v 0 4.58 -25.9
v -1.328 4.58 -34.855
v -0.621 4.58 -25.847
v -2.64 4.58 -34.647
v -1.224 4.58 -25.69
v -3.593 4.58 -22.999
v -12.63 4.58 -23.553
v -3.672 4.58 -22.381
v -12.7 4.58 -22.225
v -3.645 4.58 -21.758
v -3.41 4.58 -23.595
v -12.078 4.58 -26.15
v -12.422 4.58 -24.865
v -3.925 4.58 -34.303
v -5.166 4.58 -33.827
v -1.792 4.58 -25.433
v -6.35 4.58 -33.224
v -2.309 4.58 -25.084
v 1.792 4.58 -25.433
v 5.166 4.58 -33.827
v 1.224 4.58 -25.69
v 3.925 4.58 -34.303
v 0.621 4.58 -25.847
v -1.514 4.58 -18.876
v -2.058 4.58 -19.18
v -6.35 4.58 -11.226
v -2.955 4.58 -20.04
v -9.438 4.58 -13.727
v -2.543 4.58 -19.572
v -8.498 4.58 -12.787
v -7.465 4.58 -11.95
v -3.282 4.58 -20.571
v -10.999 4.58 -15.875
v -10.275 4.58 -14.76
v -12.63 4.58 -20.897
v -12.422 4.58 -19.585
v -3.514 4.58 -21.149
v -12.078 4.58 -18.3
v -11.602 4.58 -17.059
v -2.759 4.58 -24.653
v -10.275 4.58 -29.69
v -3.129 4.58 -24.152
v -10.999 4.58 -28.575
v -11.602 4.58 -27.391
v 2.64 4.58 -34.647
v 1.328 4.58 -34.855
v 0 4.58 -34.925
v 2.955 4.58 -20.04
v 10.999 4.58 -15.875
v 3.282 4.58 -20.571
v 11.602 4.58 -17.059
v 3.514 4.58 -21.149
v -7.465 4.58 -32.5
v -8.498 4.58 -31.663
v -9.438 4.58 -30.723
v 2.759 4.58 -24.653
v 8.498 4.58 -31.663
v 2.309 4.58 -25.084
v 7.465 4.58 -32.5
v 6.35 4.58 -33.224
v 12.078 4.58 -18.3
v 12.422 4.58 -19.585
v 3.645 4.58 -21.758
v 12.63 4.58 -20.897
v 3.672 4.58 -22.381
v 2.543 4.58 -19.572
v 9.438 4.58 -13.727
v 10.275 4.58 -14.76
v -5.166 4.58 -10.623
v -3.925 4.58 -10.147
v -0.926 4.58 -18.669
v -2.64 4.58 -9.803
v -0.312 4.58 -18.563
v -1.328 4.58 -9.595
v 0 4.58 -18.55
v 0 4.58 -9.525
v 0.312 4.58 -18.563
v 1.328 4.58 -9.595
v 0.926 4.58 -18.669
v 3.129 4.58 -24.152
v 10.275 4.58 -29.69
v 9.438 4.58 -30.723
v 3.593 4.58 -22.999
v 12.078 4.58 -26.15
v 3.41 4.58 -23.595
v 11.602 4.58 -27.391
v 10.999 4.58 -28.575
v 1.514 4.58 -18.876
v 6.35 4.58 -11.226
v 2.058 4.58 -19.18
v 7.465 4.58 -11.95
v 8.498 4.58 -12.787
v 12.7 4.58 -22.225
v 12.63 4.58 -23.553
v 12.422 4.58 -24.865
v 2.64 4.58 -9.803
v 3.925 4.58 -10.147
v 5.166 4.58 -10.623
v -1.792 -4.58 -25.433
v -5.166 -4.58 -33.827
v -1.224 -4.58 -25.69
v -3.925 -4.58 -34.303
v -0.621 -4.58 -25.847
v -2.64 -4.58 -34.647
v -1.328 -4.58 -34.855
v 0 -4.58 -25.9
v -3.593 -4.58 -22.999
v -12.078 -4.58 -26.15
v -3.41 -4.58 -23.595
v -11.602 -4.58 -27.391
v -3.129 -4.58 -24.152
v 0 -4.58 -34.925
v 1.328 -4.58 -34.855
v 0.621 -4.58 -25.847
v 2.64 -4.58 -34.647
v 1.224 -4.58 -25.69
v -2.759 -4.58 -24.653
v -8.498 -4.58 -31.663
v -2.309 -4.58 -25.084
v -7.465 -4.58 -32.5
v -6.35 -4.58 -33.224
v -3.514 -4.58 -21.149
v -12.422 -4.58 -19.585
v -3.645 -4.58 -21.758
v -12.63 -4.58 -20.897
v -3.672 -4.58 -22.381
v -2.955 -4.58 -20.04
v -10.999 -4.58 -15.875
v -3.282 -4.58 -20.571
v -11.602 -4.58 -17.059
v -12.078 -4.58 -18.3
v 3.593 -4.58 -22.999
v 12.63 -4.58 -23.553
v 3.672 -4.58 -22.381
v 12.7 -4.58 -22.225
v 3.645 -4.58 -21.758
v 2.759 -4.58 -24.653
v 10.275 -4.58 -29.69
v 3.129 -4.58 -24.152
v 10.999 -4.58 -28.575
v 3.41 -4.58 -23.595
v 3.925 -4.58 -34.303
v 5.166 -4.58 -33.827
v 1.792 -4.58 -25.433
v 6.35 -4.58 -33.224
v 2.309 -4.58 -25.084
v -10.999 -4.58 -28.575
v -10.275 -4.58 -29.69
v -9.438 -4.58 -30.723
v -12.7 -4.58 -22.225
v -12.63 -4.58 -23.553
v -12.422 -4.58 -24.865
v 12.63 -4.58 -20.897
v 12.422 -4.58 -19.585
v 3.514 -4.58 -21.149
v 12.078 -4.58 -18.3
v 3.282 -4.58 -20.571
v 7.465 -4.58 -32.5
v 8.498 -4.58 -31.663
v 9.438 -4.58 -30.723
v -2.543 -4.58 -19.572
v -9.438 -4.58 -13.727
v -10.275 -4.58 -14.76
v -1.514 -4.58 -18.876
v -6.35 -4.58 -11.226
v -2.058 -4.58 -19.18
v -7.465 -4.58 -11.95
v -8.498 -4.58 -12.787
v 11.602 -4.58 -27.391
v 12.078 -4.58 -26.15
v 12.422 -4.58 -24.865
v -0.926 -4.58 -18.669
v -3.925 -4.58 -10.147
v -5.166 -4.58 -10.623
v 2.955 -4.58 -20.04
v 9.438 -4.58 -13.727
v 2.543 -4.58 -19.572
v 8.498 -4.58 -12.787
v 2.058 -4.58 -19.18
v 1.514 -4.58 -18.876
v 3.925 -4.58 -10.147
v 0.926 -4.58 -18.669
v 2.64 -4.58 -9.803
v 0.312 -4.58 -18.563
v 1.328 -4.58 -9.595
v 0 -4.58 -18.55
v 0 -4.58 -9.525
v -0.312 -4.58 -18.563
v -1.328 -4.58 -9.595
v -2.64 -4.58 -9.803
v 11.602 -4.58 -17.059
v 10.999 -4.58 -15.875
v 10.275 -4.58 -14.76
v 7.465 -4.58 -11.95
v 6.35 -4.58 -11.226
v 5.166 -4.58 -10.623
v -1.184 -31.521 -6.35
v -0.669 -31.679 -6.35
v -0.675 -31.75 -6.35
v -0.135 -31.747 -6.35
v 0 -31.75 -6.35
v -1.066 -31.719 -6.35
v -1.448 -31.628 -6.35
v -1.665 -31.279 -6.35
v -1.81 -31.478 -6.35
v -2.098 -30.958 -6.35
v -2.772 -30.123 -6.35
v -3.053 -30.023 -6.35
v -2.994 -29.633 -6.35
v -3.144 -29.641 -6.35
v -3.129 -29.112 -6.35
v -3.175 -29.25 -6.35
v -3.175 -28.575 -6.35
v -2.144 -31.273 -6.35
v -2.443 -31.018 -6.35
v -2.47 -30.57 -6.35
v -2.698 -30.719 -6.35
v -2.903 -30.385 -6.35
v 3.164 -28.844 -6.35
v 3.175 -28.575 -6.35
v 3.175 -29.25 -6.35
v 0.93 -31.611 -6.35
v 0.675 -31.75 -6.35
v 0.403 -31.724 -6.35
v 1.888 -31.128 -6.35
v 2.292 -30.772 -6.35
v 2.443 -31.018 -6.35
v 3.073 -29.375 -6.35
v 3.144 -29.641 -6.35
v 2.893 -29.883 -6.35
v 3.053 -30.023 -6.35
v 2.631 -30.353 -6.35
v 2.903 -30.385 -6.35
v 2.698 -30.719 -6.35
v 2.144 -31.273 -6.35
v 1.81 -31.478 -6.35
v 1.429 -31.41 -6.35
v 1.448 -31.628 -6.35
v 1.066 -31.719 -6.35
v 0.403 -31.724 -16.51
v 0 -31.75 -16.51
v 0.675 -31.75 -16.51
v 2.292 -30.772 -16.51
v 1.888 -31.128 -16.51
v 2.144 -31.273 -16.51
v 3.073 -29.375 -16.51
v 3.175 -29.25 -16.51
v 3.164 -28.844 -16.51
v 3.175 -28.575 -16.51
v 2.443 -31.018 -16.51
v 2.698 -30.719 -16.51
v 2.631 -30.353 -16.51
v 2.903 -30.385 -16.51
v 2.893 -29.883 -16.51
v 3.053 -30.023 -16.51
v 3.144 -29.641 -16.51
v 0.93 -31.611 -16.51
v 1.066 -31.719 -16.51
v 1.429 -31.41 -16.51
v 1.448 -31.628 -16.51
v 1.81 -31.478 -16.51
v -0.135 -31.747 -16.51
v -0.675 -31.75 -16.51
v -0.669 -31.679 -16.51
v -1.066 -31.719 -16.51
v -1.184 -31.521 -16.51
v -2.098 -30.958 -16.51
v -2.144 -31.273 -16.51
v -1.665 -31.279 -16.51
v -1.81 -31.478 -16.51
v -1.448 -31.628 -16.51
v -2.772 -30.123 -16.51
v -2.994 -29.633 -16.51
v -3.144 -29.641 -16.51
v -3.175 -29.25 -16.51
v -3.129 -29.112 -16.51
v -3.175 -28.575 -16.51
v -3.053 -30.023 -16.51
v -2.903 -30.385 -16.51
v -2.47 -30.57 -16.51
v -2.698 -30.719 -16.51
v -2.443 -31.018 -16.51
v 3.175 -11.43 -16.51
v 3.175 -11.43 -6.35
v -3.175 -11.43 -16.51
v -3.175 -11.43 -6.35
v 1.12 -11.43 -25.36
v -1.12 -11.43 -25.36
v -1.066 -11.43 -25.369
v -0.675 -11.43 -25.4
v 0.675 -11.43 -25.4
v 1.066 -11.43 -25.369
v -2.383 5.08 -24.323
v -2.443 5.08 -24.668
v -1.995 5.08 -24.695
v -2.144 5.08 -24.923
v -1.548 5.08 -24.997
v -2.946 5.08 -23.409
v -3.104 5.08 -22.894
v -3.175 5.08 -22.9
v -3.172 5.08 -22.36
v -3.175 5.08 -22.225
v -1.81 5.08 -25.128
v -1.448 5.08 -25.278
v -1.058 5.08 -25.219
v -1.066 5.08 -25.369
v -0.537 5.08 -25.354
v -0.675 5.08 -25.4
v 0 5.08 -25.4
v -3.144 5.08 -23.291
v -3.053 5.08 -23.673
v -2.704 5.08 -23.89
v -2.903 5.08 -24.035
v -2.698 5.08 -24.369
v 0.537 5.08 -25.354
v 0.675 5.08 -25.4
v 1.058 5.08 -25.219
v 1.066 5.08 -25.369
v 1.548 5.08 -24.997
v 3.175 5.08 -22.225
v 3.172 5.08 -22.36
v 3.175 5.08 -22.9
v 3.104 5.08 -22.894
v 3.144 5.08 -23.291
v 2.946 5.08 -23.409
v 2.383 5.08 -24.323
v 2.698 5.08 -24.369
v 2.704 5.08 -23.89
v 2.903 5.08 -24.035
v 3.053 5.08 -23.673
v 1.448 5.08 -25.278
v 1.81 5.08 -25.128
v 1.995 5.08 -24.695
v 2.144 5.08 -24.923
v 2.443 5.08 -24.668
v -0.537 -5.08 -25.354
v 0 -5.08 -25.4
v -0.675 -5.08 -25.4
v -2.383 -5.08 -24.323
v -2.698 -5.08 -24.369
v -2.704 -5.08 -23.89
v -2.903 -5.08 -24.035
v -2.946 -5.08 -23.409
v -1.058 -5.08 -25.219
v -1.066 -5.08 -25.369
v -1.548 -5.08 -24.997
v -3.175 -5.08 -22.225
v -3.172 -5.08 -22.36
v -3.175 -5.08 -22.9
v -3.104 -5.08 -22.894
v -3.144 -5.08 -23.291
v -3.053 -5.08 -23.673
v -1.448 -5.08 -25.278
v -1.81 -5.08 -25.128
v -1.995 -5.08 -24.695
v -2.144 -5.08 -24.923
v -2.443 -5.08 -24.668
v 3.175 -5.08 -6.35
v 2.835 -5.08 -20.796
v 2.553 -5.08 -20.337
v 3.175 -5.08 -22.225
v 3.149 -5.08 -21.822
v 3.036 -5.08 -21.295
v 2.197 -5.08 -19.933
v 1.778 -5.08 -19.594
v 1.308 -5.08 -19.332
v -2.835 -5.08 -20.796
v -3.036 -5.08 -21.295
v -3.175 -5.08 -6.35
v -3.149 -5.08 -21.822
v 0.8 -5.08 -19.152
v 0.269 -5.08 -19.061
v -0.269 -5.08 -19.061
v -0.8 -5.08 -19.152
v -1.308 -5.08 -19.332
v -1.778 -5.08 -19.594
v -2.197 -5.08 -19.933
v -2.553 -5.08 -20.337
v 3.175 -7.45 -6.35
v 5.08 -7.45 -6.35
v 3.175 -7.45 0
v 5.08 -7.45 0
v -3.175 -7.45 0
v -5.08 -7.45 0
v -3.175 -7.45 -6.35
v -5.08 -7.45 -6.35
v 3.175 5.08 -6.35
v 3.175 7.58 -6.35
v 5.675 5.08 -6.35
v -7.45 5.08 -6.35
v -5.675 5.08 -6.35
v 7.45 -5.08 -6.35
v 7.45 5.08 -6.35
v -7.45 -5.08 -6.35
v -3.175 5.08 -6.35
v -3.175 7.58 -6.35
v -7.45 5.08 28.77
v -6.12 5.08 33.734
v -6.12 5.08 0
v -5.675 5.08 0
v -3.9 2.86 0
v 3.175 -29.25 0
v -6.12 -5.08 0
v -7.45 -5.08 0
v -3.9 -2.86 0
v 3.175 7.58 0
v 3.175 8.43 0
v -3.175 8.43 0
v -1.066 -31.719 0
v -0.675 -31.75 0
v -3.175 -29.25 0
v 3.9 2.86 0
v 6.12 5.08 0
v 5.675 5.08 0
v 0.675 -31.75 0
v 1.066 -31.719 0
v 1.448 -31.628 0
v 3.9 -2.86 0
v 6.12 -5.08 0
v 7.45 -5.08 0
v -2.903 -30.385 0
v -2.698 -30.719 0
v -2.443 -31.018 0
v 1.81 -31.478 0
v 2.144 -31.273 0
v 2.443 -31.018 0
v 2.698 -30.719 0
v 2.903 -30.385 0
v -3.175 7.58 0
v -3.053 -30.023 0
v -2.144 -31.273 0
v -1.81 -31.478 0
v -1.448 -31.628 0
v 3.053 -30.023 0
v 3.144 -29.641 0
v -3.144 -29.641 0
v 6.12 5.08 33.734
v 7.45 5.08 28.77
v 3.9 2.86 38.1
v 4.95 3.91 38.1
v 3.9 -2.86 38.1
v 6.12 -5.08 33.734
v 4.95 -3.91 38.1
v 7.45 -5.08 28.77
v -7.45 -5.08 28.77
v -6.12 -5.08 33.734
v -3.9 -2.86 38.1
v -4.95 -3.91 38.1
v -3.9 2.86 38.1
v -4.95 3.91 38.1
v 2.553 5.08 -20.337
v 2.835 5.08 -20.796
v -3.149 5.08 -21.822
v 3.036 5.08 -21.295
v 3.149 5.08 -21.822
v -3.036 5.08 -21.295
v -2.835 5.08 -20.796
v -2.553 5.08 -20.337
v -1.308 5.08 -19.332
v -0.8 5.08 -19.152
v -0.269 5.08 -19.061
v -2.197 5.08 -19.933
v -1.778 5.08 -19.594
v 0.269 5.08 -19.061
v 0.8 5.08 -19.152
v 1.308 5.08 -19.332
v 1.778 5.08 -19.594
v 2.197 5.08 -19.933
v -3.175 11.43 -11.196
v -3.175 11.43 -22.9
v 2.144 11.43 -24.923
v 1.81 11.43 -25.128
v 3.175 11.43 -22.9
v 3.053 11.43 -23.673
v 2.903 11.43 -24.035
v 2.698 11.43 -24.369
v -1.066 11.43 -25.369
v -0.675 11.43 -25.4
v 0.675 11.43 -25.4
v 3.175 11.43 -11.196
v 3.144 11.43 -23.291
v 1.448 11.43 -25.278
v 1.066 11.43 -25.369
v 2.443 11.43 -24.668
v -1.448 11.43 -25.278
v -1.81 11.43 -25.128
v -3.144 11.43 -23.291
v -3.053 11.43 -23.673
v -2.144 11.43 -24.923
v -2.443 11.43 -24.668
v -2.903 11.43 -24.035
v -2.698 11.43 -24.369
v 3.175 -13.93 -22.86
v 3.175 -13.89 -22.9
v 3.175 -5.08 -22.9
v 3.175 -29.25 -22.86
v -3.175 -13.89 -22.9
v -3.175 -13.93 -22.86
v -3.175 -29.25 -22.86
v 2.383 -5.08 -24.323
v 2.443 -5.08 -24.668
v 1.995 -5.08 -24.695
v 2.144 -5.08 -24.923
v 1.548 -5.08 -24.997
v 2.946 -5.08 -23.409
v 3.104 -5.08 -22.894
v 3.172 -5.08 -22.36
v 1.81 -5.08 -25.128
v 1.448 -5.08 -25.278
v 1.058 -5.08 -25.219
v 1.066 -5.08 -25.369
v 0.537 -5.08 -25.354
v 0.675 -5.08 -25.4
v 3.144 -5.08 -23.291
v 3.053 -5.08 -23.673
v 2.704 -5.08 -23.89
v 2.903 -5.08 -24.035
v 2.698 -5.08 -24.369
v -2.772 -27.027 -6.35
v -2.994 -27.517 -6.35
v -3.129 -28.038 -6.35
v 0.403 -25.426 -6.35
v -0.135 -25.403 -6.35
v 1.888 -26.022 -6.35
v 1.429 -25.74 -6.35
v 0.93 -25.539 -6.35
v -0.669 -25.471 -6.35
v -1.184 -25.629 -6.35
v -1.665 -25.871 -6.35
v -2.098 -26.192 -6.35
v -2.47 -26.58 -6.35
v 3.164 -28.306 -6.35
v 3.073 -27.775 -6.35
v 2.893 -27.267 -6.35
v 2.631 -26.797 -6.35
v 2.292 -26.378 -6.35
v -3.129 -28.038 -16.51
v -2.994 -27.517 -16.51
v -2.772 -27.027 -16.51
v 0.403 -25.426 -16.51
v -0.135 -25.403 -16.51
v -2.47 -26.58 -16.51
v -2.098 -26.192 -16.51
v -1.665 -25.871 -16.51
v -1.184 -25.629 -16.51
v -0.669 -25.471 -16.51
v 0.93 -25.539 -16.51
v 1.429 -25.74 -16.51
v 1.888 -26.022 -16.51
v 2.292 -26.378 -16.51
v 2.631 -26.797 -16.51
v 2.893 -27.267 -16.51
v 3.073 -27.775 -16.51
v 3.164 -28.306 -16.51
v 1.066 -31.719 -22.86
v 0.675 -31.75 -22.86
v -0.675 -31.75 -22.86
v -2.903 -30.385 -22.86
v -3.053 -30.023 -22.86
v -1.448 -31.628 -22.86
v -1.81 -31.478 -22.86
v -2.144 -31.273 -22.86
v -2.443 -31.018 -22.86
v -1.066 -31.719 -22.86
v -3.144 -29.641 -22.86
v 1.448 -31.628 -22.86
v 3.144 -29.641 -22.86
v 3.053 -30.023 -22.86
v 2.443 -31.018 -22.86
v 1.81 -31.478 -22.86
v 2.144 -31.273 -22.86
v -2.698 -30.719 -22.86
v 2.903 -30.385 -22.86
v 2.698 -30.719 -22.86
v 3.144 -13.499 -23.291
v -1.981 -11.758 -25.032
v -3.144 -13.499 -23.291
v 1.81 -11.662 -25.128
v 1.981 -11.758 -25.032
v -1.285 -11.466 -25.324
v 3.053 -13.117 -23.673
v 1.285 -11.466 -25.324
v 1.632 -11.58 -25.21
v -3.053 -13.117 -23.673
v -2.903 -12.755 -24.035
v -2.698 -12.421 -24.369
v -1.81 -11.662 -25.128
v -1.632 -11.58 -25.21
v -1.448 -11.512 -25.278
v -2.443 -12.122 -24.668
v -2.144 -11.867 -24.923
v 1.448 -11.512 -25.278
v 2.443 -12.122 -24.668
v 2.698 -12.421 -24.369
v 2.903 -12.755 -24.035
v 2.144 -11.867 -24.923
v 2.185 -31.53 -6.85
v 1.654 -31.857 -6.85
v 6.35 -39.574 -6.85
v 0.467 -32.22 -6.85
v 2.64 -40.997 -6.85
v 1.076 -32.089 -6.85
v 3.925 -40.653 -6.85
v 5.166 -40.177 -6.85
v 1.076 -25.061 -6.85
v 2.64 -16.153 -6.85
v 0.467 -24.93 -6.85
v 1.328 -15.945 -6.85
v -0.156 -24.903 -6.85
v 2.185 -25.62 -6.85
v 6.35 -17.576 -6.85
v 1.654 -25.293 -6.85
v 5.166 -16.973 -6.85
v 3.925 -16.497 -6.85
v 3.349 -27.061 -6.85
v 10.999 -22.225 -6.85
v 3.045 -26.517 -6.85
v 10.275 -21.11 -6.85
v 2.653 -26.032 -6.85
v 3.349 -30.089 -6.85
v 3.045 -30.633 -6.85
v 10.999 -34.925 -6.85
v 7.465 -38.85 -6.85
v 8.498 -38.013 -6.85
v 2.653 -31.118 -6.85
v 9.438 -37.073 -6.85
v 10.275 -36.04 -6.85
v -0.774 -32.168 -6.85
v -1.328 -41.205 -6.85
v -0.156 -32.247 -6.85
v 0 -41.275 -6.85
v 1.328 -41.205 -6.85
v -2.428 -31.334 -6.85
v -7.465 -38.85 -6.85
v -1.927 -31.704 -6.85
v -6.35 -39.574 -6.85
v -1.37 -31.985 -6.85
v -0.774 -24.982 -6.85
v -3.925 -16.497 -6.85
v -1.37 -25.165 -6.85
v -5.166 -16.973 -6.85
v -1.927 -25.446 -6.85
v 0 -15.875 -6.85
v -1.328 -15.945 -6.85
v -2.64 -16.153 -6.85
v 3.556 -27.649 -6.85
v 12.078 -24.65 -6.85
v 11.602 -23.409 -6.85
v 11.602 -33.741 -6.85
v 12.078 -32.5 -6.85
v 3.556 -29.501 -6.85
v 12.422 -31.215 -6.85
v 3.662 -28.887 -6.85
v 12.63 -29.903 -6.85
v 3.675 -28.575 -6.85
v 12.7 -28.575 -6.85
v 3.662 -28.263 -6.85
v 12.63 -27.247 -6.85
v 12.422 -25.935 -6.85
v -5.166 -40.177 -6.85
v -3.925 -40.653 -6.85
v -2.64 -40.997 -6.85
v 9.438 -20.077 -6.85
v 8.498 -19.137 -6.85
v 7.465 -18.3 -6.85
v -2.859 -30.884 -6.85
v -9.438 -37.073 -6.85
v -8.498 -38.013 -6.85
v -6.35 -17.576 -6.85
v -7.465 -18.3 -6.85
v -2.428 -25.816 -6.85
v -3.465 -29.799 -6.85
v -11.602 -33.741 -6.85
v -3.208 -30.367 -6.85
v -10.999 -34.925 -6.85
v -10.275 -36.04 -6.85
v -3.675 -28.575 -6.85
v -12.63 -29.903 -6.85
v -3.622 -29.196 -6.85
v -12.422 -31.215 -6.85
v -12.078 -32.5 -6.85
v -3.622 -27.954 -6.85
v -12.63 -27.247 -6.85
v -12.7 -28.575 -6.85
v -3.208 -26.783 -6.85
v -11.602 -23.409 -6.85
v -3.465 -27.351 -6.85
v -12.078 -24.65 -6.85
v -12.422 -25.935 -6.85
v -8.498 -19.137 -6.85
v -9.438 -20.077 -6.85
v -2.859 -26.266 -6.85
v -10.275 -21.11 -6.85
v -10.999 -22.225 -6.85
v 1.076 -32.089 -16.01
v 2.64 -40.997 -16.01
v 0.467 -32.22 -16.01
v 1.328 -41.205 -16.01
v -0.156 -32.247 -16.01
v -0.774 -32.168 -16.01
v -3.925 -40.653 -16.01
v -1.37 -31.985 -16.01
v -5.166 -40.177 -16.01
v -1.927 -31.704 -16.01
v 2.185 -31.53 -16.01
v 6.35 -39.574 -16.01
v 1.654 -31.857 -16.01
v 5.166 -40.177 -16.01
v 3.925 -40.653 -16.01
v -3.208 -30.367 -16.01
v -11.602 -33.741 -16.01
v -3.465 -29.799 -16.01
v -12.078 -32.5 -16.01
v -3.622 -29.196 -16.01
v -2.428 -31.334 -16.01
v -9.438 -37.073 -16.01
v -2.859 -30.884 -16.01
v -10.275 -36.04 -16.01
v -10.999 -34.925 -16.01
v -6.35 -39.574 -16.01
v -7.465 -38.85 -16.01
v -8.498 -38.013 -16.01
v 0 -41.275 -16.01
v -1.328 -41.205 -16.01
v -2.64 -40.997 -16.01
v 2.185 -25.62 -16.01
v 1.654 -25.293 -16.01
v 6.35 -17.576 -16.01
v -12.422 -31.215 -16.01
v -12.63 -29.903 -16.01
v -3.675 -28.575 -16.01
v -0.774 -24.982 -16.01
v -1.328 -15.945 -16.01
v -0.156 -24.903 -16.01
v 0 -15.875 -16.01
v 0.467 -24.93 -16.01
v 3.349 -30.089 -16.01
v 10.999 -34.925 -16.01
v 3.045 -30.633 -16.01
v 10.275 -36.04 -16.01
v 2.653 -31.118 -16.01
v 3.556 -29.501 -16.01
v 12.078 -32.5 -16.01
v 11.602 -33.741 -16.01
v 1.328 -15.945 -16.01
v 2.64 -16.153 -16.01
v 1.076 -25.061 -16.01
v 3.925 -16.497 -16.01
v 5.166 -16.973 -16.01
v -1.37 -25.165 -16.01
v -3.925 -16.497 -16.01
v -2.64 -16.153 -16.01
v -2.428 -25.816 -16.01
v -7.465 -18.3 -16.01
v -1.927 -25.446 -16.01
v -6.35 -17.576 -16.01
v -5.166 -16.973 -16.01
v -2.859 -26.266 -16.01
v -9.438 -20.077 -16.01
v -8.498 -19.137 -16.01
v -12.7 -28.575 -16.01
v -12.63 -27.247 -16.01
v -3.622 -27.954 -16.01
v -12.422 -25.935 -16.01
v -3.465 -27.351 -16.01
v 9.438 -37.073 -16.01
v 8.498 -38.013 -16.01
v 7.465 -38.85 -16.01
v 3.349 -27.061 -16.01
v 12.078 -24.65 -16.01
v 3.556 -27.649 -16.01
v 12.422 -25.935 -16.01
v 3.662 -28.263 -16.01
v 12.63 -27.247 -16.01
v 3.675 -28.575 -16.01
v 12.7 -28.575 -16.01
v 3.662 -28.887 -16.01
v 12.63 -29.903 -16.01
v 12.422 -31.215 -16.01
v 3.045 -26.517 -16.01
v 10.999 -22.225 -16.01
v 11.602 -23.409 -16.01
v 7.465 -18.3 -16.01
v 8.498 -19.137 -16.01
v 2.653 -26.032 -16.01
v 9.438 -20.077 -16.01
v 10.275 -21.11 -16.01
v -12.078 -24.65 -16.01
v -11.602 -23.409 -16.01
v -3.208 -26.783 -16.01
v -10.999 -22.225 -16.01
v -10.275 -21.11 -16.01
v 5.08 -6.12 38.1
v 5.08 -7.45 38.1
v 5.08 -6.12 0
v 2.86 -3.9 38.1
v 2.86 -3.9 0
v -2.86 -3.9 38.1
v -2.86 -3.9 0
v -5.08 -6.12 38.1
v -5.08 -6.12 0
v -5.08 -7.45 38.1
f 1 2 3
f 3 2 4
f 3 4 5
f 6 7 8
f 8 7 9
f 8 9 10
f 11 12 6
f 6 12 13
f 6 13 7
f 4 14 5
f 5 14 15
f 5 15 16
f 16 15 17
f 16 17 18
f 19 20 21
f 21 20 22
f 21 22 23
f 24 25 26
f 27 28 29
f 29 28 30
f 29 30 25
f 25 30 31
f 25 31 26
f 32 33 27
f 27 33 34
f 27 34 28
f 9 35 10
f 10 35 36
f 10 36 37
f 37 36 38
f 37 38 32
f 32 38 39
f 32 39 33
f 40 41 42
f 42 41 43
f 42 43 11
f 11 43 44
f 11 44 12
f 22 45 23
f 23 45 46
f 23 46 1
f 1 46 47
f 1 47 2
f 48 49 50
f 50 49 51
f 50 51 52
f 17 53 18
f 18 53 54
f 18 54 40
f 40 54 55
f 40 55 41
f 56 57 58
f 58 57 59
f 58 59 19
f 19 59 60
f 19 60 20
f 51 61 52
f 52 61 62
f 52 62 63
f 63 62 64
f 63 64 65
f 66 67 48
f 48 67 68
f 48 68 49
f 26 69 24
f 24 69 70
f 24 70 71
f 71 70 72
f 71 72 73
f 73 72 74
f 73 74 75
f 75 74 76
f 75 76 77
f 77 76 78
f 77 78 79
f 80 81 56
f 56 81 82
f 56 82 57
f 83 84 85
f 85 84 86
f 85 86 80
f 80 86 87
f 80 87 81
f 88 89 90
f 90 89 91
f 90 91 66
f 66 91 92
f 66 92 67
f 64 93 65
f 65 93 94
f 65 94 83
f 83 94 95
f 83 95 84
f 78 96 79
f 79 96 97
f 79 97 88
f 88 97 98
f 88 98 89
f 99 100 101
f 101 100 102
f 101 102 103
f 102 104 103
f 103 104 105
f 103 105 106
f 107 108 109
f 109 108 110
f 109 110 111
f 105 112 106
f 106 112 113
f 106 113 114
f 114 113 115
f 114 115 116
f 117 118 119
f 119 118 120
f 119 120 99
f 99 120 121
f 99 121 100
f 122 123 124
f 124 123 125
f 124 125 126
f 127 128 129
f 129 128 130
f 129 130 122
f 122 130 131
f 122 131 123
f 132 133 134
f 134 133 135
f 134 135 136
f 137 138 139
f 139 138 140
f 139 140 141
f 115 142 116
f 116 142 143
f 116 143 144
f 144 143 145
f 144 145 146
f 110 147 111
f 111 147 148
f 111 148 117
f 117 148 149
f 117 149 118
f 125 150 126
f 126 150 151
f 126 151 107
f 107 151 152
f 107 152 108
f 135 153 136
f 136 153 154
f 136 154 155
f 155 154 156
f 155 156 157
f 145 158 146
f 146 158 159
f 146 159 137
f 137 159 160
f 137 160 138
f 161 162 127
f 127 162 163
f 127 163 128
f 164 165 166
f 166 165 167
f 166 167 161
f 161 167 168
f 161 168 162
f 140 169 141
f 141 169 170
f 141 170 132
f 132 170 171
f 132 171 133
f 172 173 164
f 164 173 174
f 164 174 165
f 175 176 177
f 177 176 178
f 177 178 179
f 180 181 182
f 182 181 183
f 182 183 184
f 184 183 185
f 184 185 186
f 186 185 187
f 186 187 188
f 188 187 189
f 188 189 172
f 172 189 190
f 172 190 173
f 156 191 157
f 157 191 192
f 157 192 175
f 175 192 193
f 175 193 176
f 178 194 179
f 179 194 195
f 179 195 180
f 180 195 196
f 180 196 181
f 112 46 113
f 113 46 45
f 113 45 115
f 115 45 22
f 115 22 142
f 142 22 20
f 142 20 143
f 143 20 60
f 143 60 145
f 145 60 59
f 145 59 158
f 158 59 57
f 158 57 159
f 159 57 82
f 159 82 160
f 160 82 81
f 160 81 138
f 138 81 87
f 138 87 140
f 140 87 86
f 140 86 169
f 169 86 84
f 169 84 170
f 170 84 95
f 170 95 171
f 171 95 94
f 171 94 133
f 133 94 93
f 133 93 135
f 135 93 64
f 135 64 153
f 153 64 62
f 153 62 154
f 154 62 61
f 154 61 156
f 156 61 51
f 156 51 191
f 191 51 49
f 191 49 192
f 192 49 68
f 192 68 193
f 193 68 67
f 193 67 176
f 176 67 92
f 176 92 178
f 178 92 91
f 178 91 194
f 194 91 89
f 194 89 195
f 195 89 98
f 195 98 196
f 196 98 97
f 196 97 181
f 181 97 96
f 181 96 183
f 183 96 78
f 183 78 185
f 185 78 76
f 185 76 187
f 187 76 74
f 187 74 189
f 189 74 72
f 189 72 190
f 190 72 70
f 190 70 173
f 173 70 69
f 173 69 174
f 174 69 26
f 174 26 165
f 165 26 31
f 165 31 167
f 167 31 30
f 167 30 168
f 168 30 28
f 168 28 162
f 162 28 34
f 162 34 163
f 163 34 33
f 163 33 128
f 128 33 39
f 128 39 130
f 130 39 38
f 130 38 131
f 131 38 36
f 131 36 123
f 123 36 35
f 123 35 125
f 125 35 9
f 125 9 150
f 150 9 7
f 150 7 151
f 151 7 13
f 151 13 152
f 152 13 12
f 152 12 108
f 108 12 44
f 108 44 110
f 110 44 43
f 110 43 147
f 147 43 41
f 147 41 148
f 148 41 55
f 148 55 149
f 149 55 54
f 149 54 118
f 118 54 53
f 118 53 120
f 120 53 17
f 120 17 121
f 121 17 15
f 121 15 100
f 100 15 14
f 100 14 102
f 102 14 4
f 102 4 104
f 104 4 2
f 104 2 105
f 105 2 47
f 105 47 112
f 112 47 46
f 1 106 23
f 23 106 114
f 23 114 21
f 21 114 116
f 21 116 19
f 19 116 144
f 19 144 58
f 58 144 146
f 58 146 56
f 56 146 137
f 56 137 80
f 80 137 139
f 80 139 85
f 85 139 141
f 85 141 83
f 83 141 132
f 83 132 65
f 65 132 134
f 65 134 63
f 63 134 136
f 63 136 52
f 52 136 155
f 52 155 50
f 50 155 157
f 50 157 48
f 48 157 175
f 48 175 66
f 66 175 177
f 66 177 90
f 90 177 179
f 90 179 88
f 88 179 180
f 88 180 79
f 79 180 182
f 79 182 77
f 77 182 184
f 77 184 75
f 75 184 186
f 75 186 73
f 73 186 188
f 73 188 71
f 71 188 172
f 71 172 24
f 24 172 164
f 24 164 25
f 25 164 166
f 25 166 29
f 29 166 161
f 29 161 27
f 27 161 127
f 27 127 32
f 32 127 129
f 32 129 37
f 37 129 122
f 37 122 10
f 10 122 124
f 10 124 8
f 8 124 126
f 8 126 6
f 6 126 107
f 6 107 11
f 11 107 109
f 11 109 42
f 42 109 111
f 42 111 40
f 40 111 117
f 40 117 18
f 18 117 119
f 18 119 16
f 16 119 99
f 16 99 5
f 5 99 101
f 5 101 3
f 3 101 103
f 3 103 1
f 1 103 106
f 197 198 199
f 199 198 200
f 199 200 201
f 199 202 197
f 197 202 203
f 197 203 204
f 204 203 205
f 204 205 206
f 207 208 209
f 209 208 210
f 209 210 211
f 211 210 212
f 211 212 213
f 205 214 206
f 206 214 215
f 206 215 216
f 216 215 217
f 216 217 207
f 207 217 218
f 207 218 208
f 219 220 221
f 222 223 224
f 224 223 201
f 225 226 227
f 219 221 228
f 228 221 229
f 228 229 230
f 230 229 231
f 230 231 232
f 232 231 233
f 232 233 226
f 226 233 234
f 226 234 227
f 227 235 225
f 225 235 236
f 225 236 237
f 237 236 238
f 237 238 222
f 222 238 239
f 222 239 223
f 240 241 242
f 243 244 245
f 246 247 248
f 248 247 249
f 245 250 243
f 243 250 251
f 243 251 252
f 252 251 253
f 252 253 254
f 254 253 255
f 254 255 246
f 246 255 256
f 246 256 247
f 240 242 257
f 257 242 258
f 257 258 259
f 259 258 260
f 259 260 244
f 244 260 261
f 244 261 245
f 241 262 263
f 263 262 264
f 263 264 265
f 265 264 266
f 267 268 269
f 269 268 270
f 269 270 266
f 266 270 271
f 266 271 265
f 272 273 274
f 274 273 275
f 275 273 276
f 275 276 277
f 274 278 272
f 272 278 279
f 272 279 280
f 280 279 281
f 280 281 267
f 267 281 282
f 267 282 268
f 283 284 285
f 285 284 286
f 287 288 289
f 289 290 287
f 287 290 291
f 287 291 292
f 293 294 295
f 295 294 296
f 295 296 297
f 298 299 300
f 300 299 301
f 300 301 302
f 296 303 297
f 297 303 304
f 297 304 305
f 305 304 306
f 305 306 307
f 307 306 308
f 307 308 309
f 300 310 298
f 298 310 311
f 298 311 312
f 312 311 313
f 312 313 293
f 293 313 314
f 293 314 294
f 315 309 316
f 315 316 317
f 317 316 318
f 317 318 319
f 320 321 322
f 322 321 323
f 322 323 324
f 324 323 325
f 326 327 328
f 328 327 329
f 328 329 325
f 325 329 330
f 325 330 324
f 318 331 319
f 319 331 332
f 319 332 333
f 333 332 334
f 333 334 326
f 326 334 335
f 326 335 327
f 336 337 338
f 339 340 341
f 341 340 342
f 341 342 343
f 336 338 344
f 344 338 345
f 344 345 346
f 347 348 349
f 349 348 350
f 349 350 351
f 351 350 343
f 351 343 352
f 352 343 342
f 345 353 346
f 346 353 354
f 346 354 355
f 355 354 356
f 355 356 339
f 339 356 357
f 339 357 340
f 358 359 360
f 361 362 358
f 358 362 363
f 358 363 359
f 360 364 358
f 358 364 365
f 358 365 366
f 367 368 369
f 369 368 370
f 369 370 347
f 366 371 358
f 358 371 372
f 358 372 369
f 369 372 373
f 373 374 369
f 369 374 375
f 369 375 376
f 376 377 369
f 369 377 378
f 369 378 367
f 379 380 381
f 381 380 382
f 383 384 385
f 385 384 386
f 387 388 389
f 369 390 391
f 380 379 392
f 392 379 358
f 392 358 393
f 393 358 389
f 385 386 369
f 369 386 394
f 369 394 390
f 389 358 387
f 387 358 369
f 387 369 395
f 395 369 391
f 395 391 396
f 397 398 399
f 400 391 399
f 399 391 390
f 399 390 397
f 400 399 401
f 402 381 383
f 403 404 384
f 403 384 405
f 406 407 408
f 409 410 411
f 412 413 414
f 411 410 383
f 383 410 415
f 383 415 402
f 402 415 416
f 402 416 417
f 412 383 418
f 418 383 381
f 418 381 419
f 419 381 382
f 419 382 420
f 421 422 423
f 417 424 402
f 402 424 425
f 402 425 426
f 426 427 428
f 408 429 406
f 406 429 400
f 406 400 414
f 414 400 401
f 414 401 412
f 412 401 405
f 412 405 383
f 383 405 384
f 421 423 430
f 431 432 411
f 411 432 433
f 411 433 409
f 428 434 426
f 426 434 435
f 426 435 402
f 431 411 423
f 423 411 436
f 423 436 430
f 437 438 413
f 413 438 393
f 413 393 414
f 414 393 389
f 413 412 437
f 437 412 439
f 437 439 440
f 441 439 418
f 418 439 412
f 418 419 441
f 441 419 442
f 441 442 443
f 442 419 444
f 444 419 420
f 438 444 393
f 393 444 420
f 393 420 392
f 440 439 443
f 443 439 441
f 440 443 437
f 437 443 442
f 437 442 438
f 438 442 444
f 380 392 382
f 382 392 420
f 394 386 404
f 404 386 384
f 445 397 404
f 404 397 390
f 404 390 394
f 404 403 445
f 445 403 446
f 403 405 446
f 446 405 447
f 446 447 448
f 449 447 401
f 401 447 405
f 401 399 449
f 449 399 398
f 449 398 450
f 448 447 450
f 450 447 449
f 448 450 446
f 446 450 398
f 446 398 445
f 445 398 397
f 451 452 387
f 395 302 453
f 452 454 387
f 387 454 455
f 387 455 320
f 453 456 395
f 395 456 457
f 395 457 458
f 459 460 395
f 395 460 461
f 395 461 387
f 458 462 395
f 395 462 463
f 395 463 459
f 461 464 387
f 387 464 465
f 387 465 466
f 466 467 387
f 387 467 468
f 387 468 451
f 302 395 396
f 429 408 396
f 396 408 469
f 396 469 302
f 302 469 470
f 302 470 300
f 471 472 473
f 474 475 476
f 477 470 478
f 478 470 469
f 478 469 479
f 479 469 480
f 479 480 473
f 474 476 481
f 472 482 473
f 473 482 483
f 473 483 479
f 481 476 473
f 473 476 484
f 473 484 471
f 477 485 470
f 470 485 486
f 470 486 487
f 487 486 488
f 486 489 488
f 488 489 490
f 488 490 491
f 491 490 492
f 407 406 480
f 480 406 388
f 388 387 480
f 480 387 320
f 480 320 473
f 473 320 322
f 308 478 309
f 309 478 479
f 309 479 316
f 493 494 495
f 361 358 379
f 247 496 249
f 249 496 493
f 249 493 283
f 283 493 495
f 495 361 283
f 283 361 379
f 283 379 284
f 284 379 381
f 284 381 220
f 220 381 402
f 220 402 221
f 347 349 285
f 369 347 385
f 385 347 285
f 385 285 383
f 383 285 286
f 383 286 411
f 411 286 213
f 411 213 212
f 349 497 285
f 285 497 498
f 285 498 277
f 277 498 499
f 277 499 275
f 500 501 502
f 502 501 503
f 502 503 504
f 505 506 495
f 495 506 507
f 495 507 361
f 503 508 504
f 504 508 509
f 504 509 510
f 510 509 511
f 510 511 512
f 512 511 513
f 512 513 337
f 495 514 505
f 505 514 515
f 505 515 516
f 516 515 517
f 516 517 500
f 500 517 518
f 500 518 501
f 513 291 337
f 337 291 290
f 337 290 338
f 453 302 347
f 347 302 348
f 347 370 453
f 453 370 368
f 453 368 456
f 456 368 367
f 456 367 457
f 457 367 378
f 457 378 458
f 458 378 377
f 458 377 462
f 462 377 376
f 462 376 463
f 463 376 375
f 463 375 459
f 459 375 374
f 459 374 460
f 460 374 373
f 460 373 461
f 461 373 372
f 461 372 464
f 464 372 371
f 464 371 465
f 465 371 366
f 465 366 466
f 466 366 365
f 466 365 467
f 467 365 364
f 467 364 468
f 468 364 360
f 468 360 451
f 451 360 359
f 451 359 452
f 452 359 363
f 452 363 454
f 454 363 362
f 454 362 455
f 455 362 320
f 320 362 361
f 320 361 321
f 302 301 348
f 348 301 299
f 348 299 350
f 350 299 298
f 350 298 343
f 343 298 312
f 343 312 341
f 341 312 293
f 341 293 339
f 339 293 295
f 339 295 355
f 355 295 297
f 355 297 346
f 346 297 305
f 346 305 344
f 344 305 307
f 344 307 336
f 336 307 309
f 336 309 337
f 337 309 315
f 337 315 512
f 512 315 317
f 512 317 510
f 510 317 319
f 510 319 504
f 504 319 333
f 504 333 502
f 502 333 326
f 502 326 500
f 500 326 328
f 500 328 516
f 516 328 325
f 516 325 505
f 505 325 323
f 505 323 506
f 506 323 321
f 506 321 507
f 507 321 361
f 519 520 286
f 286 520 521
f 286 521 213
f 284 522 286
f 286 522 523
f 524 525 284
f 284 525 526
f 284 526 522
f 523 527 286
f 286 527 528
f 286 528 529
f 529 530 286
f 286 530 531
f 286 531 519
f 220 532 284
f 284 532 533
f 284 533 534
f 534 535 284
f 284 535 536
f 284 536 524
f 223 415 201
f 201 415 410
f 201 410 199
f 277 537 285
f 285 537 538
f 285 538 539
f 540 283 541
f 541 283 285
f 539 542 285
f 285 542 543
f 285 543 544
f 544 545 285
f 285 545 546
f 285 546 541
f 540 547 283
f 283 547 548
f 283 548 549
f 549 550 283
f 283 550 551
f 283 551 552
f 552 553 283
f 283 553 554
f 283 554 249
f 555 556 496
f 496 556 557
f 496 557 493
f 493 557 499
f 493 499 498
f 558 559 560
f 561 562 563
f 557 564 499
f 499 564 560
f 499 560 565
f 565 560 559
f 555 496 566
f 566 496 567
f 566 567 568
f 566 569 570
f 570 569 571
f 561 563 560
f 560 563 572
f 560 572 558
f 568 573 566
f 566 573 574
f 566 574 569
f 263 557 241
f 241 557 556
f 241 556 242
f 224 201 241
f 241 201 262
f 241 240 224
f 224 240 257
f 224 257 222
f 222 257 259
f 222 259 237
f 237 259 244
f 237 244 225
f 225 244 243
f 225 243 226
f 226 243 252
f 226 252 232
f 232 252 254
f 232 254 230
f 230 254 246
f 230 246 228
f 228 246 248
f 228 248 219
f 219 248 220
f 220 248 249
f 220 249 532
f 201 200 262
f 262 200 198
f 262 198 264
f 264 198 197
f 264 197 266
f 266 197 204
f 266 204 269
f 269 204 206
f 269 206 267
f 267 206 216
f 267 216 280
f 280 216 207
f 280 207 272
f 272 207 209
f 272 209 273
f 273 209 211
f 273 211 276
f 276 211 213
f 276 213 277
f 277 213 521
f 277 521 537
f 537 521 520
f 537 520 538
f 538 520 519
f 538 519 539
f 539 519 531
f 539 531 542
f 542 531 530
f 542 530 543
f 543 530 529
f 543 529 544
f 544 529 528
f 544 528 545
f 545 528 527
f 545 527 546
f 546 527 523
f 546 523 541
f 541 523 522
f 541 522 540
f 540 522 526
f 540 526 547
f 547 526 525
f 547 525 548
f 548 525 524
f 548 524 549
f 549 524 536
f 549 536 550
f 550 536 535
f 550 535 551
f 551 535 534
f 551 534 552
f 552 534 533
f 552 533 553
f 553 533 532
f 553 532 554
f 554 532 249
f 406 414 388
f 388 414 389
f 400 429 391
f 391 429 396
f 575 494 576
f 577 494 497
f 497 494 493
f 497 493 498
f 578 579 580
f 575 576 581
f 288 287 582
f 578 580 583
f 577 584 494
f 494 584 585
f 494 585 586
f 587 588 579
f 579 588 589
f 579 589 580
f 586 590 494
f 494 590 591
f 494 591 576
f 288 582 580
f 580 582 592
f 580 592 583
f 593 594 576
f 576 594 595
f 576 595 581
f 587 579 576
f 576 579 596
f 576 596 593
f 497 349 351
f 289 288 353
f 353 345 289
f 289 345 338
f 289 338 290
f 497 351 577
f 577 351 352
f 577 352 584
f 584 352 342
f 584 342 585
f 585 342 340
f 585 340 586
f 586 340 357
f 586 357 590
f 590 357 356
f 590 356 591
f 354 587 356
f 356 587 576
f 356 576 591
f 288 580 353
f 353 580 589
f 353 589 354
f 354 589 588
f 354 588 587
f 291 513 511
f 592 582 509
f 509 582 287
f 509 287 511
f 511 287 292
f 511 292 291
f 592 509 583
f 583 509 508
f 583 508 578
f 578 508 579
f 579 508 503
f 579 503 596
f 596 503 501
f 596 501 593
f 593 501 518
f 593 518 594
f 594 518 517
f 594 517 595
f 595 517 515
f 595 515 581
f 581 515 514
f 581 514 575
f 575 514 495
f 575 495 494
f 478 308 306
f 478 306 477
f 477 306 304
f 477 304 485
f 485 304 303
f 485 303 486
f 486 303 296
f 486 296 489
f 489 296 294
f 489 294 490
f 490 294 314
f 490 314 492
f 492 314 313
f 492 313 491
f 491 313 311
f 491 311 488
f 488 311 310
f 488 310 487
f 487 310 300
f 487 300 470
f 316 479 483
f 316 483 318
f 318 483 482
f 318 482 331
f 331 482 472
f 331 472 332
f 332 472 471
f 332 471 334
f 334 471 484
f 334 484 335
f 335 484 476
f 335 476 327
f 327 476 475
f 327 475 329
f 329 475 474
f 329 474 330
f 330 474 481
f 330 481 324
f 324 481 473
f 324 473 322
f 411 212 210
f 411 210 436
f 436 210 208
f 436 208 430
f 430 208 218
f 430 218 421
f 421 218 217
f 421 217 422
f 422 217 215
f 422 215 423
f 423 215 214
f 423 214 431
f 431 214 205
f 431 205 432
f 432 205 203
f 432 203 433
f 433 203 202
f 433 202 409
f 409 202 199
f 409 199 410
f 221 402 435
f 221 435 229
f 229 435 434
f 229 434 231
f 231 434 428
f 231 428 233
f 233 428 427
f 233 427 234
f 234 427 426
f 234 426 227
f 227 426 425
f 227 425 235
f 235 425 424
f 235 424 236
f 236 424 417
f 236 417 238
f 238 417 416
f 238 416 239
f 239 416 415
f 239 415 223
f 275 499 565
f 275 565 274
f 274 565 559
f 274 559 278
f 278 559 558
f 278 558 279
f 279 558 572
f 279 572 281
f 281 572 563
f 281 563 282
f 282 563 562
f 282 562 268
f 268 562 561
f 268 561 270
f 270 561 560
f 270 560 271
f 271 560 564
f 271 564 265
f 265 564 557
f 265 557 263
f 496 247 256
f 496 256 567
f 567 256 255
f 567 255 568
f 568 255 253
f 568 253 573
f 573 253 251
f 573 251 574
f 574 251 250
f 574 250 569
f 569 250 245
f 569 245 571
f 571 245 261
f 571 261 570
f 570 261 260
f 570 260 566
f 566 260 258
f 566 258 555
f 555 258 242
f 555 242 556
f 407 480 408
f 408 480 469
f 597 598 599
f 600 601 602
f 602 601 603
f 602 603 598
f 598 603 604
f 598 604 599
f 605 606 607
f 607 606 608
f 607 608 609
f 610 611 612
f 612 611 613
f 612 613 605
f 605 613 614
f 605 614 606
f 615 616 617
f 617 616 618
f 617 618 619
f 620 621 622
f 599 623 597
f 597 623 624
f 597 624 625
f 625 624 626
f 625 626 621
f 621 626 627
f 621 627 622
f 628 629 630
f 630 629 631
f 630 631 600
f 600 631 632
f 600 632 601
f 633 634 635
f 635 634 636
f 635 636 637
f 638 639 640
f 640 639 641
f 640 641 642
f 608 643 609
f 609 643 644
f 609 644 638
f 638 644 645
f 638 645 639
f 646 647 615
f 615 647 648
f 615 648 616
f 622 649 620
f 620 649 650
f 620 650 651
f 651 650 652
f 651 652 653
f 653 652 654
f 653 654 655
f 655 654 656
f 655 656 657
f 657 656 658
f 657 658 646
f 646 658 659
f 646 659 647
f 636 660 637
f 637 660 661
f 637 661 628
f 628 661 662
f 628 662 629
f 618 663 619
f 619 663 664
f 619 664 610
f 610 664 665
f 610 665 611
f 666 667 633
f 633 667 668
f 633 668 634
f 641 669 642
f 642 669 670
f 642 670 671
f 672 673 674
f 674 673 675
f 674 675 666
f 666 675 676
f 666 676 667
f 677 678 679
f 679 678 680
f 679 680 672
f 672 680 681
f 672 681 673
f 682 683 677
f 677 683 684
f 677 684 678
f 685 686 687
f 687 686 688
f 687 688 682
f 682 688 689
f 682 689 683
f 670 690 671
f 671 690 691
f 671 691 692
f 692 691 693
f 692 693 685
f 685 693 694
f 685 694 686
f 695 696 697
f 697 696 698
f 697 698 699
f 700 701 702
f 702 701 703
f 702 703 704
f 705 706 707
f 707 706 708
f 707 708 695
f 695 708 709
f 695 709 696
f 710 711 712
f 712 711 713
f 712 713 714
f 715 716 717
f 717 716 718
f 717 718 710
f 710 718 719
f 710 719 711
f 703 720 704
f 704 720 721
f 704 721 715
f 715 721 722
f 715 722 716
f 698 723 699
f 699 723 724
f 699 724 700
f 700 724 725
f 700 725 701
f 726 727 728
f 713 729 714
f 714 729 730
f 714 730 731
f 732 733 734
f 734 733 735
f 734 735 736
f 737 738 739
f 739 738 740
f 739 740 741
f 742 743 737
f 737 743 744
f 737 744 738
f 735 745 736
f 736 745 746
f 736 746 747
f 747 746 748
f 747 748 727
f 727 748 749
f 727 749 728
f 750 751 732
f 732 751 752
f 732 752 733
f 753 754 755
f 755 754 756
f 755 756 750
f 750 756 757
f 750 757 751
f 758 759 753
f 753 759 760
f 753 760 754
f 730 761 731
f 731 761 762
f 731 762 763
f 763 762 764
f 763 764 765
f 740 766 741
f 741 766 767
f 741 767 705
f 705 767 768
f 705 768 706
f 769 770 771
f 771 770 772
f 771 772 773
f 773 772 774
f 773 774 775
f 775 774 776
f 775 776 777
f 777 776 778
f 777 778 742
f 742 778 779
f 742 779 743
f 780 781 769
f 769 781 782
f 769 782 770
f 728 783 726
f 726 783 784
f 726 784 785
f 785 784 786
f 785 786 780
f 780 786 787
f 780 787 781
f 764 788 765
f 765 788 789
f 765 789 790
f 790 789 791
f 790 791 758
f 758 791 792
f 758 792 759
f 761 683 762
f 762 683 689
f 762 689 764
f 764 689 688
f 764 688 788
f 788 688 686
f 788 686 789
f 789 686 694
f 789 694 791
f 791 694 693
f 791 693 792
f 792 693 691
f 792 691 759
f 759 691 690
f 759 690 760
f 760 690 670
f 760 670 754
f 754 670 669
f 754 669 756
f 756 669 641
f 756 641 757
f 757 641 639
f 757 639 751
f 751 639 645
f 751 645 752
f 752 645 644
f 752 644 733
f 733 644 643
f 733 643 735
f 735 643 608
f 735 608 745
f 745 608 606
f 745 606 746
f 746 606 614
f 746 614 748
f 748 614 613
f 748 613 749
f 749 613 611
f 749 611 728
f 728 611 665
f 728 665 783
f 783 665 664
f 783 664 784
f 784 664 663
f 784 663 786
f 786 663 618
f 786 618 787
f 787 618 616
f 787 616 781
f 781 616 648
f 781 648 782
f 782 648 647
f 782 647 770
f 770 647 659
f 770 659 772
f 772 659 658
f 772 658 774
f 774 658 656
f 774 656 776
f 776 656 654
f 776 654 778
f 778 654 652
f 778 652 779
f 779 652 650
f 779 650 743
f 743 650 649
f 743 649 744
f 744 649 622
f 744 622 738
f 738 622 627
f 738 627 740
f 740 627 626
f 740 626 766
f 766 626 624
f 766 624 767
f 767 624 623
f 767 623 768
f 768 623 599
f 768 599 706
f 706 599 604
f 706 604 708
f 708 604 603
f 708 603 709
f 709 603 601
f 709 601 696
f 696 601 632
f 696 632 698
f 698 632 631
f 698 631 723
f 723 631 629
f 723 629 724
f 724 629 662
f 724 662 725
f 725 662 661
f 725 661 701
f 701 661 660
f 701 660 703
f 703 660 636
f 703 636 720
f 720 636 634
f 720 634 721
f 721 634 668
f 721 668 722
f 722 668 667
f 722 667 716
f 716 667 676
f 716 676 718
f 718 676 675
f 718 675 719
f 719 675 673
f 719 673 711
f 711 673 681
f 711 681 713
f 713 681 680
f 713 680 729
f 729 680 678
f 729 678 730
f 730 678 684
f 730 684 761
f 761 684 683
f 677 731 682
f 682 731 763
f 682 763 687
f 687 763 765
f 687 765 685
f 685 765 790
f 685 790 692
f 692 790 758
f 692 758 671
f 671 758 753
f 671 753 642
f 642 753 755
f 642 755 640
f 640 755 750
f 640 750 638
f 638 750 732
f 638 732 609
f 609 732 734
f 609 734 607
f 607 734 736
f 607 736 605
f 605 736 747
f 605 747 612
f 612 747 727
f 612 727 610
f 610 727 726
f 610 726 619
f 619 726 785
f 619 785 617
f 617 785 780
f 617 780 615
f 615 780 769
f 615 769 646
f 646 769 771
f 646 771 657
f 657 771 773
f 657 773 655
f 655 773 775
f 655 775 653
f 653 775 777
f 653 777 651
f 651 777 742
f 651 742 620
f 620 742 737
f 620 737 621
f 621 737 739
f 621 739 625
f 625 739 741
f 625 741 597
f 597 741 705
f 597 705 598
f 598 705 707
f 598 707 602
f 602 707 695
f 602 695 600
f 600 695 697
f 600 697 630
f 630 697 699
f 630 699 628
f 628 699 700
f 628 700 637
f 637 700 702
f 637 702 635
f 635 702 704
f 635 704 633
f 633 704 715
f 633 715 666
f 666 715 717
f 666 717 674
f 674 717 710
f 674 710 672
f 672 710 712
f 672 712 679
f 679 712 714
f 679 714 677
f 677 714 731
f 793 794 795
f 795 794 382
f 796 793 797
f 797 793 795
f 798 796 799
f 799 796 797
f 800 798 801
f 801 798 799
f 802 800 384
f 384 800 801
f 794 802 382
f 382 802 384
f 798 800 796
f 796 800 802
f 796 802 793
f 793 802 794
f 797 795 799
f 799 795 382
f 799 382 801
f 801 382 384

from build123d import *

# Parameters (mm, degrees)
BOSS_EXTRUDE1_DEPTH   = 38.1
BOSS_EXTRUDE1_2_DEPTH = 38.1
BOSS_EXTRUDE1_3_DEPTH = 38.1
CHAMFER1_SIZE         = 2.5
CHAMFER1_SIZE2        = 9.330127019
CHAMFER2_SIZE         = 2.5
CHAMFER2_SIZE2        = 9.330127019
BOSS_EXTRUDE2_DEPTH   = 6.35
BOSS_EXTRUDE3_START   = -6.35
SKETCH4_W             = 6.35
SKETCH4_H             = 6.35
BOSS_EXTRUDE3_DEPTH   = 25.4
BOSS_EXTRUDE4_REACH   = 44.186
SKETCH5_R             = 3.175
BOSS_EXTRUDE5_START   = 0.5
SKETCH6_R             = 12.7
SKETCH6_R_2           = 3.675
BOSS_EXTRUDE5_DEPTH   = 9.16
SKETCH7_W             = 6.35
SKETCH7_H             = 20.32
BOSS_EXTRUDE6_DEPTH   = 6.35
BOSS_EXTRUDE7_REACH   = 66.433
SKETCH8_R             = 3.175
BOSS_EXTRUDE8_START   = 0.5
SKETCH9_R             = 12.7
SKETCH9_R_2           = 3.675
BOSS_EXTRUDE8_DEPTH   = 9.16
CHAMFER3_SIZE         = 2.5
FILLET1_R             = 2.5
CHAMFER4_SIZE         = 3
CHAMFER4_SIZE2        = 11.196152423


with BuildPart() as part:
    # Sketch1 → Boss-Extrude1 (new body)
    with BuildSketch(Plane.XY):
        Polygon((6.12, -5.08), (3.9, -2.86), (3.9, 2.86), (6.12, 5.08), (7.45, 5.08), (7.45, -5.08), align=None)
    extrude(amount=BOSS_EXTRUDE1_DEPTH)

    # Chamfer1
    chamfer1_edges = [part.edges().sort_by_distance(p)[0] for p in [
        (7.45, 0, 38.1),
    ]]
    chamfer1_side = [part.faces().sort_by_distance(p)[0] for p in [
        (5.838807306, 0, 38.1),
    ]]
    chamfer(chamfer1_edges, length=CHAMFER1_SIZE, length2=CHAMFER1_SIZE2, reference=chamfer1_side[0])



with BuildPart() as body_2:
    # Sketch1 → Boss-Extrude1 2 (new body)
    with BuildSketch(Plane.XY):
        Polygon((-6.12, -5.08), (-3.9, -2.86), (-3.9, 2.86), (-6.12, 5.08), (-7.45, 5.08), (-7.45, -5.08), align=None)
    extrude(amount=BOSS_EXTRUDE1_2_DEPTH)

    # Chamfer2
    chamfer2_edges = [body_2.edges().sort_by_distance(p)[0] for p in [
        (-7.45, 0, 38.1),
    ]]
    chamfer2_side = [body_2.faces().sort_by_distance(p)[0] for p in [
        (-5.838807306, 0, 38.1),
    ]]
    chamfer(chamfer2_edges, length=CHAMFER2_SIZE, length2=CHAMFER2_SIZE2, reference=chamfer2_side[0])


with BuildPart() as body_3:
    # Sketch1 → Boss-Extrude1 3 (new body)
    with BuildSketch(Plane.XY):
        Polygon((5.08, -7.45), (-5.08, -7.45), (-5.08, -6.12), (-2.86, -3.9), (2.86, -3.9), (5.08, -6.12), align=None)
    extrude(amount=BOSS_EXTRUDE1_3_DEPTH)


with BuildPart() as part_1:
    add(part.part)

    add(body_2.part)  # Boss-Extrude2 merges body 2
    # Sketch3 → Boss-Extrude2 (add)
    with BuildSketch(Plane.XY):
        Polygon((7.45, 5.08), (-7.45, 5.08), (-7.45, -5.08), (-5.08, -7.45), (5.08, -7.45), (7.45, -5.08), align=None)
    extrude(amount=-BOSS_EXTRUDE2_DEPTH)

    # Sketch4 → Boss-Extrude3 (add)
    with BuildSketch(Plane(origin=(0, 0, -6.35), x_dir=(-1, 0, 0), z_dir=(0, 0, -1)).offset(BOSS_EXTRUDE3_START)):
        with Locations((0, 8.255)):
            Rectangle(SKETCH4_W, SKETCH4_H)
        with Locations((0, -8.255)):
            Rectangle(SKETCH4_W, SKETCH4_H)
    extrude(amount=BOSS_EXTRUDE3_DEPTH)

    # Sketch5 → Boss-Extrude4 (add, up to next)
    with BuildSketch(Plane(origin=(0, -5.08, 0), x_dir=(1, 0, 0), z_dir=(0, 1, 0)), mode=Mode.PRIVATE) as boss_extrude4_sk1:
        with Locations(Location((0, 22.225, 0), (0, 0, 90))):
            Circle(SKETCH5_R)
    boss_extrude4_tool1 = extrude(boss_extrude4_sk1.sketch, amount=BOSS_EXTRUDE4_REACH, mode=Mode.PRIVATE) - part_1.part
    add(boss_extrude4_tool1.solids().sort_by_distance((0, -5.08, -22.225))[0])

    # Sketch7 → Boss-Extrude6 (add)
    with BuildSketch(Plane(origin=(3.175, 0, 0), x_dir=(0, 0, -1), z_dir=(1, 0, 0))):
        with Locations((3.175, -21.59)):
            Rectangle(SKETCH7_W, SKETCH7_H)
        with Locations((19.685, -21.59)):
            Rectangle(SKETCH7_W, SKETCH7_H)
    extrude(amount=-BOSS_EXTRUDE6_DEPTH)

    # Sketch8 → Boss-Extrude7 (add, up to next)
    with BuildSketch(Plane.XY.offset(-16.51), mode=Mode.PRIVATE) as boss_extrude7_sk1:
        with Locations(Location((0, -28.575, 0), (0, 0, 180))):
            Circle(SKETCH8_R)
    boss_extrude7_tool1 = extrude(boss_extrude7_sk1.sketch, amount=BOSS_EXTRUDE7_REACH, mode=Mode.PRIVATE) - part_1.part
    add(boss_extrude7_tool1.solids().sort_by_distance((0, -28.575, -16.51))[0])

    # Chamfer3
    chamfer3_edges = [part_1.edges().sort_by_distance(p)[0] for p in [
        (0, -11.43, -22.86),
        (3.175, 5.08, -3.175),
        (-3.175, 5.08, -3.175),
    ]]
    chamfer(chamfer3_edges, length=CHAMFER3_SIZE)

    # Fillet1
    fillet1_edges = [part_1.edges().sort_by_distance(p)[0] for p in [
        (-3.175, -8.255, -25.4),
        (3.175, -8.255, -25.4),
        (-3.175, 8.255, -25.4),
        (3.175, 8.255, -25.4),
        (-3.175, -31.75, -3.175),
        (3.175, -31.75, -3.175),
        (-3.175, -31.75, -19.685),
        (3.175, -31.75, -19.685),
    ]]
    fillet(fillet1_edges, radius=FILLET1_R)

    # Chamfer4
    chamfer4_edges = [part_1.edges().sort_by_distance(p)[0] for p in [
        (0, 11.43, 0),
    ]]
    chamfer4_side = [part_1.faces().sort_by_distance(p)[0] for p in [
        (0, -8.69005842, 0),
    ]]
    chamfer(chamfer4_edges, length=CHAMFER4_SIZE, length2=CHAMFER4_SIZE2, reference=chamfer4_side[0])


with BuildPart() as body_3_2:
    # Sketch6 → Boss-Extrude5 (new body)
    with BuildSketch(Plane(origin=(0, -5.08, 0), x_dir=(1, 0, 0), z_dir=(0, 1, 0)).offset(BOSS_EXTRUDE5_START)):
        with Locations(Location((0, 22.225, 0), (0, 0, 270))):
            Circle(SKETCH6_R)
        with Locations(Location((0, 22.225, 0), (0, 0, 270))):
            Circle(SKETCH6_R_2, mode=Mode.SUBTRACT)
    extrude(amount=BOSS_EXTRUDE5_DEPTH)


with BuildPart() as body_4:
    # Sketch9 → Boss-Extrude8 (new body)
    with BuildSketch(Plane.XY.offset(-16.51).offset(BOSS_EXTRUDE8_START)):
        with Locations((0, -28.575)):
            Circle(SKETCH9_R)
        with Locations((0, -28.575)):
            Circle(SKETCH9_R_2, mode=Mode.SUBTRACT)
    extrude(amount=BOSS_EXTRUDE8_DEPTH)


solid = Compound([body_3.part, part_1.part, body_3_2.part, body_4.part])
